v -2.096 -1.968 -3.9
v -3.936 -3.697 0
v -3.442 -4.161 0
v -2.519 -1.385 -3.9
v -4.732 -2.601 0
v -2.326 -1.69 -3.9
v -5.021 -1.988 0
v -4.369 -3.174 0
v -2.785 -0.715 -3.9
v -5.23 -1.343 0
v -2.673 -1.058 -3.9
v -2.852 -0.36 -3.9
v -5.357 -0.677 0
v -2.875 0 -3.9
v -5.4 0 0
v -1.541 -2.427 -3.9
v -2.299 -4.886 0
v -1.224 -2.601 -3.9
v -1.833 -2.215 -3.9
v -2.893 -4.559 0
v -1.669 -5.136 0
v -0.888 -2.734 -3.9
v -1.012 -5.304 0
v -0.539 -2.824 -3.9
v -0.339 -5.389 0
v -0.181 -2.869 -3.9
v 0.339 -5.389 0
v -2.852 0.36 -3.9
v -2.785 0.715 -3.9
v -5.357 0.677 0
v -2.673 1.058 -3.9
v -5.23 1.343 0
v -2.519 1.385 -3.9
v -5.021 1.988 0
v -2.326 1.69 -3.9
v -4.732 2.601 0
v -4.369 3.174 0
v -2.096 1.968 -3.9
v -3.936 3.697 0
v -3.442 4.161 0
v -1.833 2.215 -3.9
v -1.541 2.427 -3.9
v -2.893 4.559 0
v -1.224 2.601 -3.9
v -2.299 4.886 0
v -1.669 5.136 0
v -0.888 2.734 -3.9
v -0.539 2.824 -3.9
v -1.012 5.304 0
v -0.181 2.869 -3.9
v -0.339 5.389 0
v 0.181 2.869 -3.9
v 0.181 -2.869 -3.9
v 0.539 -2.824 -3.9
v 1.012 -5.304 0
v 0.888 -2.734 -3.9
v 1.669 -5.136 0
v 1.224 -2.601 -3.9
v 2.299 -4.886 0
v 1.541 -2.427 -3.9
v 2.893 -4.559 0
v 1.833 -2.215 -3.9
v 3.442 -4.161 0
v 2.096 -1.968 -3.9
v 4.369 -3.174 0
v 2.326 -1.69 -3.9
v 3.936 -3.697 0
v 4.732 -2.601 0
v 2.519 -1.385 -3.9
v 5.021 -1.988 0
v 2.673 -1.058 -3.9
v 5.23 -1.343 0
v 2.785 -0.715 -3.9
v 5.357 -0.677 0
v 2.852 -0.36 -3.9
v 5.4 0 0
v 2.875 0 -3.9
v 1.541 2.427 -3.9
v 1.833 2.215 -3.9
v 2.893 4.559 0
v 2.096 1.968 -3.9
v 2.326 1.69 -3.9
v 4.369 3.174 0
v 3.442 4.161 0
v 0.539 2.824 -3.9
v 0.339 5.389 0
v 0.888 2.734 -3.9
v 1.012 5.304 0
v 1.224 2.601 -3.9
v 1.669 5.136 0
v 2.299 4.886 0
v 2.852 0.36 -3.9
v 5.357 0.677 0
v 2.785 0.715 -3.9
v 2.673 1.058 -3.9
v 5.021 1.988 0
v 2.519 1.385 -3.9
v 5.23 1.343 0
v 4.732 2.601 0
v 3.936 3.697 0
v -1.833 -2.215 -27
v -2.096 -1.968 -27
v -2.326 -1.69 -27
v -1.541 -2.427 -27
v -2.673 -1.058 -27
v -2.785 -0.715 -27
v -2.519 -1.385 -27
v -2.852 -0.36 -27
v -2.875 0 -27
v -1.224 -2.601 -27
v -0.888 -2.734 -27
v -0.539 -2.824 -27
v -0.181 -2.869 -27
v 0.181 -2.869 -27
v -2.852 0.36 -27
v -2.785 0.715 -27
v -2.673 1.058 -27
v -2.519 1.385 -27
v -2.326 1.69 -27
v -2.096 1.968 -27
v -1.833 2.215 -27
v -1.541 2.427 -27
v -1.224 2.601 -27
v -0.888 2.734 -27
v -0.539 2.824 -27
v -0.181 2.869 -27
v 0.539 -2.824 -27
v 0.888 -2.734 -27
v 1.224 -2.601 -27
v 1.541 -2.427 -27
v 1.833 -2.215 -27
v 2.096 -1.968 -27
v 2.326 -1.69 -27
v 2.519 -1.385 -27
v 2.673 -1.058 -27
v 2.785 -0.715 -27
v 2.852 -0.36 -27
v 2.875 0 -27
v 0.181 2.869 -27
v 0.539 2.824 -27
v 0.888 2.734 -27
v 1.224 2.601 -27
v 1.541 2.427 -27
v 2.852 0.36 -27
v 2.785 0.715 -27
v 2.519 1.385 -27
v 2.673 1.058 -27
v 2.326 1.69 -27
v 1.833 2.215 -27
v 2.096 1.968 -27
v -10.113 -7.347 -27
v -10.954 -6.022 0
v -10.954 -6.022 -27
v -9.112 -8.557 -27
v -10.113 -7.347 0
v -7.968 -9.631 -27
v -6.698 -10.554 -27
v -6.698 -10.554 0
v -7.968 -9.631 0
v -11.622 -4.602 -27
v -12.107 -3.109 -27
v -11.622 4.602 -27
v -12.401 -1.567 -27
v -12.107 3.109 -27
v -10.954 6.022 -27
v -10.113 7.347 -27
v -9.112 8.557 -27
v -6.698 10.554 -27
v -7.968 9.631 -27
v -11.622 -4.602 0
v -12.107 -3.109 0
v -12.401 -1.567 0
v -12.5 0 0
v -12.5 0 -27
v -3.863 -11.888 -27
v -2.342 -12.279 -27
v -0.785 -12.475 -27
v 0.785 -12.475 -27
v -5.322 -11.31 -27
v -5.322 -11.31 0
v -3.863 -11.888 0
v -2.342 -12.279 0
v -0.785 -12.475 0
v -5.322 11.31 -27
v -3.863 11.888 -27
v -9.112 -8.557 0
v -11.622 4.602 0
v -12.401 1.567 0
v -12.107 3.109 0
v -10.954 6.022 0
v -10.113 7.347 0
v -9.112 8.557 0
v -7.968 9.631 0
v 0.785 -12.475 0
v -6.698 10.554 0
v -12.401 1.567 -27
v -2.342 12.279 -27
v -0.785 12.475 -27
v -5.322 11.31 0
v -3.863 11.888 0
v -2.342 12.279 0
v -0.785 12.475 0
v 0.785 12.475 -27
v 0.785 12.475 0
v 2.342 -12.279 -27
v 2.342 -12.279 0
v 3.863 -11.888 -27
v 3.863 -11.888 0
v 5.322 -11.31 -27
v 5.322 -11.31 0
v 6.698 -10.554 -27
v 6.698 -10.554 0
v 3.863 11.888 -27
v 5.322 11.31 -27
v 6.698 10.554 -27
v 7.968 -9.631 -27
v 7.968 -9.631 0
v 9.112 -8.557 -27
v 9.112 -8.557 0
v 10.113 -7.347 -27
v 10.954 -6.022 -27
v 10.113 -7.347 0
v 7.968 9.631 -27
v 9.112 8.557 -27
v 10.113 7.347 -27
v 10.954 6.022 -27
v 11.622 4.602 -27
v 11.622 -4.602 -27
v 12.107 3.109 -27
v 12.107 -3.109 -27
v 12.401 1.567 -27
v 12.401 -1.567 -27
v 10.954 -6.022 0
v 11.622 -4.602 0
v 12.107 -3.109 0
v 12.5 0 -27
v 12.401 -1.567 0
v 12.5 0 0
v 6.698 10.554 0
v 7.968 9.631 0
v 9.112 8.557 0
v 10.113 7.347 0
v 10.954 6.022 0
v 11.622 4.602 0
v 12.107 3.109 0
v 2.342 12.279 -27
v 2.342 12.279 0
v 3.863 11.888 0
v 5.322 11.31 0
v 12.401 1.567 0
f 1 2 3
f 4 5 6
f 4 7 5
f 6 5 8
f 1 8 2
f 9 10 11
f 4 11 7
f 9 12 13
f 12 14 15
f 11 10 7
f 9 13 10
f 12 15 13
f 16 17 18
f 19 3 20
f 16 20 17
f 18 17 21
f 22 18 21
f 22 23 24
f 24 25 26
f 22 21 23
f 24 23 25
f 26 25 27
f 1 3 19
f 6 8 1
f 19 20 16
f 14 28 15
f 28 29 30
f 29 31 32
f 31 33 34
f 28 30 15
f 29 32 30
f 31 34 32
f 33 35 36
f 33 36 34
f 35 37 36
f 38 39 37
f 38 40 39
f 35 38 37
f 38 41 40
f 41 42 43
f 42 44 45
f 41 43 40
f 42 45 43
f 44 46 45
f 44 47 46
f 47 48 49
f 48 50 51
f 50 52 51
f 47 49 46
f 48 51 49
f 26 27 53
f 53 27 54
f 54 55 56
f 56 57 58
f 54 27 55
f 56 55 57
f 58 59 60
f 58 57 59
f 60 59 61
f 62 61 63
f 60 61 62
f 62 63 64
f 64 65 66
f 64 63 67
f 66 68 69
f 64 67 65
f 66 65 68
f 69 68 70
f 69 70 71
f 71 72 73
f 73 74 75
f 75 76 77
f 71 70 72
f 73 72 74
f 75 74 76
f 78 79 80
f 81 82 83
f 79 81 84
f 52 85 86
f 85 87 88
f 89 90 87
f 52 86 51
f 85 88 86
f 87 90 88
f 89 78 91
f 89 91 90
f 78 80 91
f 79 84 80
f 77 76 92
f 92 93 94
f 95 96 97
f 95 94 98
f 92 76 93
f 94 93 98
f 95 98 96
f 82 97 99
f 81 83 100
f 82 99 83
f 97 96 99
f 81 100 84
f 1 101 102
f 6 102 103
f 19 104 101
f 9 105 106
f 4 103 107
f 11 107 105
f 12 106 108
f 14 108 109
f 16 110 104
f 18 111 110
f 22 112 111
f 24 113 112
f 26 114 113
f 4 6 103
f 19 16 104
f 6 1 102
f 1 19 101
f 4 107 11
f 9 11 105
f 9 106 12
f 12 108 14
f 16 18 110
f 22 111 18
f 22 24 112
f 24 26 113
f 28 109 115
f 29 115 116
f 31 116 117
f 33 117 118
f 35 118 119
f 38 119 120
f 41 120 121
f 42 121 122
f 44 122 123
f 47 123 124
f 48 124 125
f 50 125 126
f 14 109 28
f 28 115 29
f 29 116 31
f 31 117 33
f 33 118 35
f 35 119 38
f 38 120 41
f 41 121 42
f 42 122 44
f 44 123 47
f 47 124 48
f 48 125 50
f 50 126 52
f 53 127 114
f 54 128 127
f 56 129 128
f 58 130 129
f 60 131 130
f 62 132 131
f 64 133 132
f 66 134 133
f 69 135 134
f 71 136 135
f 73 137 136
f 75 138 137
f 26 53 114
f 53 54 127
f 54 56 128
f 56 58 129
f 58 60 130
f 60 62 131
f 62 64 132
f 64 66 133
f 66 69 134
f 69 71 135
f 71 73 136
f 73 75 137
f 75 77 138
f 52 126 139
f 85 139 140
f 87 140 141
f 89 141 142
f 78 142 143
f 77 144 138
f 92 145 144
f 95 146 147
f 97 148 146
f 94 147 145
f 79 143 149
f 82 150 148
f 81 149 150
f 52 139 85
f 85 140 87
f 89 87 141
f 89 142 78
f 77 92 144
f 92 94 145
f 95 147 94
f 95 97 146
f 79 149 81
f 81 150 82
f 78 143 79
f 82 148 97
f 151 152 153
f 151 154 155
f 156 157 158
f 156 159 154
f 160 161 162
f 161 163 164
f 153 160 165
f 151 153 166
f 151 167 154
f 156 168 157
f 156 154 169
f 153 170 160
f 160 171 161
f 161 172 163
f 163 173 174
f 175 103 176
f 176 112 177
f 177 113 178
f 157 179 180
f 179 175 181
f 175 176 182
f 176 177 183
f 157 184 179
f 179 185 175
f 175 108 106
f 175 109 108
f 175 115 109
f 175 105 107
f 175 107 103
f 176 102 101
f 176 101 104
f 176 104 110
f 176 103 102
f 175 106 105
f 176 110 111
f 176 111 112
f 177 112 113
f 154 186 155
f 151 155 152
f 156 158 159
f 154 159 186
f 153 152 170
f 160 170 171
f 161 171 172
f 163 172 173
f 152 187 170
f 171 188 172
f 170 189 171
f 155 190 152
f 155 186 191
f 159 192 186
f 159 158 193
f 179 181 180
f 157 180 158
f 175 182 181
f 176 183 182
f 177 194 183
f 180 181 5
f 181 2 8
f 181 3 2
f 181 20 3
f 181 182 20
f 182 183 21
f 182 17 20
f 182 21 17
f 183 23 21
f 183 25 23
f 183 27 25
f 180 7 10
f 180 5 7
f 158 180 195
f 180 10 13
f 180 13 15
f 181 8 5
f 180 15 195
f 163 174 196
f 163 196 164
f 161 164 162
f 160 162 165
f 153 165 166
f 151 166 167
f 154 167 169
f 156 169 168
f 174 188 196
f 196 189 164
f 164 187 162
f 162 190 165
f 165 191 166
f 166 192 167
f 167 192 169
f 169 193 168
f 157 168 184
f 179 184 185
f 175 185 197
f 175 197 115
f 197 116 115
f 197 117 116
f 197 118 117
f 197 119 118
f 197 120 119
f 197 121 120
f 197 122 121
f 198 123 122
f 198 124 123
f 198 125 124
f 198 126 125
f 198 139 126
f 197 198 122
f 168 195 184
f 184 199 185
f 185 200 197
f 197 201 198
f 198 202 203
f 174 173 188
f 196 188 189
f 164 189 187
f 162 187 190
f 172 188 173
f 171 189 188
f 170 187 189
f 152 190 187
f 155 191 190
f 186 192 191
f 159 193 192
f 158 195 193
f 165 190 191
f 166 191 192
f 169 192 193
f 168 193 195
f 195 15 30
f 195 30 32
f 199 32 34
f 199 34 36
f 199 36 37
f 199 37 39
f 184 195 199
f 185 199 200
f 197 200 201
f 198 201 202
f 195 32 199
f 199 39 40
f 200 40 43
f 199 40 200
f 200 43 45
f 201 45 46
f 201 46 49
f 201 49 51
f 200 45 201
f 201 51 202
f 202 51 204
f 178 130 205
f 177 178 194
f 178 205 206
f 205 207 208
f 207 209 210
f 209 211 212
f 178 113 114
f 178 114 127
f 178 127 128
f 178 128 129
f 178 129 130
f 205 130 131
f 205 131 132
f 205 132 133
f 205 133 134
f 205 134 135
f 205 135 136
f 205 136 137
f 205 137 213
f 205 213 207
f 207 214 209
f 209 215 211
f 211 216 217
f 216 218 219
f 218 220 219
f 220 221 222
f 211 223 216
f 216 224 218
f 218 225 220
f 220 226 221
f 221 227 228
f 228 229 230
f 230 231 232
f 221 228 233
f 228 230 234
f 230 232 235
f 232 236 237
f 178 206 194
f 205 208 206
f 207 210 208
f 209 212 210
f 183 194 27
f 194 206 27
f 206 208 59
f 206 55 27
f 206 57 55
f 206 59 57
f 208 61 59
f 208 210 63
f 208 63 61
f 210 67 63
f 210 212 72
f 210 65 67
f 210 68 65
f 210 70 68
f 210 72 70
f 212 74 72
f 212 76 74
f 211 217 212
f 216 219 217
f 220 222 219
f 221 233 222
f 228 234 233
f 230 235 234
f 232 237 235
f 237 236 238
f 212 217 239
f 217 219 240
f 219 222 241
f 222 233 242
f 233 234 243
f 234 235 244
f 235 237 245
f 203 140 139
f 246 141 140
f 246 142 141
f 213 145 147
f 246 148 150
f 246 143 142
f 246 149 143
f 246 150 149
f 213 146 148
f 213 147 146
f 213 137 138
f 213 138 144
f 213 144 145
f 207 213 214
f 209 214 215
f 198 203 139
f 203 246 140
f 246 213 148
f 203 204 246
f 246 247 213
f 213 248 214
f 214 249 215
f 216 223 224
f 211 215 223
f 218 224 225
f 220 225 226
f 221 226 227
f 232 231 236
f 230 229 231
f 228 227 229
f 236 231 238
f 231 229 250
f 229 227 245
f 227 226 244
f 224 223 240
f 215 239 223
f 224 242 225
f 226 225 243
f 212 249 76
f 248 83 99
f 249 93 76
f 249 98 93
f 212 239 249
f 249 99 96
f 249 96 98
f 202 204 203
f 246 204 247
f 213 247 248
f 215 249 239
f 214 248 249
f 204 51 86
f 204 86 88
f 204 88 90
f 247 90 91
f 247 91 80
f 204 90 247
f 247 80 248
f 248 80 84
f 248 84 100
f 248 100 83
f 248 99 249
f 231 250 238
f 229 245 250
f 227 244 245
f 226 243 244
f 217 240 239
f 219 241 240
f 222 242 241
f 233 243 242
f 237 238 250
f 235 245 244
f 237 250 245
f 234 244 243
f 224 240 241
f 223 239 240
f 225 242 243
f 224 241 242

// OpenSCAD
$fn = 50;


difference() {
	union() {
		translate(v = [0, 0, -27.0000000000]) {
			cylinder(h = 27, r = 12.5000000000);
		}
	}
	union() {
		translate(v = [0, 0, 0]) {
			rotate(a = [0, 0, 0]) {
				difference() {
					union() {
						translate(v = [0, 0, -30.0000000000]) {
							cylinder(h = 30, r = 2.6000000000);
						}
						translate(v = [0, 0, -3.9000000000]) {
							cylinder(h = 3.9000000000, r1 = 2.8750000000, r2 = 5.4000000000);
						}
						translate(v = [0, 0, -30.0000000000]) {
							cylinder(h = 30, r = 2.8750000000);
						}
						translate(v = [0, 0, -30.0000000000]) {
							cylinder(h = 30, r = 2.6000000000);
						}
					}
					union();
				}
			}
		}
	}
}
